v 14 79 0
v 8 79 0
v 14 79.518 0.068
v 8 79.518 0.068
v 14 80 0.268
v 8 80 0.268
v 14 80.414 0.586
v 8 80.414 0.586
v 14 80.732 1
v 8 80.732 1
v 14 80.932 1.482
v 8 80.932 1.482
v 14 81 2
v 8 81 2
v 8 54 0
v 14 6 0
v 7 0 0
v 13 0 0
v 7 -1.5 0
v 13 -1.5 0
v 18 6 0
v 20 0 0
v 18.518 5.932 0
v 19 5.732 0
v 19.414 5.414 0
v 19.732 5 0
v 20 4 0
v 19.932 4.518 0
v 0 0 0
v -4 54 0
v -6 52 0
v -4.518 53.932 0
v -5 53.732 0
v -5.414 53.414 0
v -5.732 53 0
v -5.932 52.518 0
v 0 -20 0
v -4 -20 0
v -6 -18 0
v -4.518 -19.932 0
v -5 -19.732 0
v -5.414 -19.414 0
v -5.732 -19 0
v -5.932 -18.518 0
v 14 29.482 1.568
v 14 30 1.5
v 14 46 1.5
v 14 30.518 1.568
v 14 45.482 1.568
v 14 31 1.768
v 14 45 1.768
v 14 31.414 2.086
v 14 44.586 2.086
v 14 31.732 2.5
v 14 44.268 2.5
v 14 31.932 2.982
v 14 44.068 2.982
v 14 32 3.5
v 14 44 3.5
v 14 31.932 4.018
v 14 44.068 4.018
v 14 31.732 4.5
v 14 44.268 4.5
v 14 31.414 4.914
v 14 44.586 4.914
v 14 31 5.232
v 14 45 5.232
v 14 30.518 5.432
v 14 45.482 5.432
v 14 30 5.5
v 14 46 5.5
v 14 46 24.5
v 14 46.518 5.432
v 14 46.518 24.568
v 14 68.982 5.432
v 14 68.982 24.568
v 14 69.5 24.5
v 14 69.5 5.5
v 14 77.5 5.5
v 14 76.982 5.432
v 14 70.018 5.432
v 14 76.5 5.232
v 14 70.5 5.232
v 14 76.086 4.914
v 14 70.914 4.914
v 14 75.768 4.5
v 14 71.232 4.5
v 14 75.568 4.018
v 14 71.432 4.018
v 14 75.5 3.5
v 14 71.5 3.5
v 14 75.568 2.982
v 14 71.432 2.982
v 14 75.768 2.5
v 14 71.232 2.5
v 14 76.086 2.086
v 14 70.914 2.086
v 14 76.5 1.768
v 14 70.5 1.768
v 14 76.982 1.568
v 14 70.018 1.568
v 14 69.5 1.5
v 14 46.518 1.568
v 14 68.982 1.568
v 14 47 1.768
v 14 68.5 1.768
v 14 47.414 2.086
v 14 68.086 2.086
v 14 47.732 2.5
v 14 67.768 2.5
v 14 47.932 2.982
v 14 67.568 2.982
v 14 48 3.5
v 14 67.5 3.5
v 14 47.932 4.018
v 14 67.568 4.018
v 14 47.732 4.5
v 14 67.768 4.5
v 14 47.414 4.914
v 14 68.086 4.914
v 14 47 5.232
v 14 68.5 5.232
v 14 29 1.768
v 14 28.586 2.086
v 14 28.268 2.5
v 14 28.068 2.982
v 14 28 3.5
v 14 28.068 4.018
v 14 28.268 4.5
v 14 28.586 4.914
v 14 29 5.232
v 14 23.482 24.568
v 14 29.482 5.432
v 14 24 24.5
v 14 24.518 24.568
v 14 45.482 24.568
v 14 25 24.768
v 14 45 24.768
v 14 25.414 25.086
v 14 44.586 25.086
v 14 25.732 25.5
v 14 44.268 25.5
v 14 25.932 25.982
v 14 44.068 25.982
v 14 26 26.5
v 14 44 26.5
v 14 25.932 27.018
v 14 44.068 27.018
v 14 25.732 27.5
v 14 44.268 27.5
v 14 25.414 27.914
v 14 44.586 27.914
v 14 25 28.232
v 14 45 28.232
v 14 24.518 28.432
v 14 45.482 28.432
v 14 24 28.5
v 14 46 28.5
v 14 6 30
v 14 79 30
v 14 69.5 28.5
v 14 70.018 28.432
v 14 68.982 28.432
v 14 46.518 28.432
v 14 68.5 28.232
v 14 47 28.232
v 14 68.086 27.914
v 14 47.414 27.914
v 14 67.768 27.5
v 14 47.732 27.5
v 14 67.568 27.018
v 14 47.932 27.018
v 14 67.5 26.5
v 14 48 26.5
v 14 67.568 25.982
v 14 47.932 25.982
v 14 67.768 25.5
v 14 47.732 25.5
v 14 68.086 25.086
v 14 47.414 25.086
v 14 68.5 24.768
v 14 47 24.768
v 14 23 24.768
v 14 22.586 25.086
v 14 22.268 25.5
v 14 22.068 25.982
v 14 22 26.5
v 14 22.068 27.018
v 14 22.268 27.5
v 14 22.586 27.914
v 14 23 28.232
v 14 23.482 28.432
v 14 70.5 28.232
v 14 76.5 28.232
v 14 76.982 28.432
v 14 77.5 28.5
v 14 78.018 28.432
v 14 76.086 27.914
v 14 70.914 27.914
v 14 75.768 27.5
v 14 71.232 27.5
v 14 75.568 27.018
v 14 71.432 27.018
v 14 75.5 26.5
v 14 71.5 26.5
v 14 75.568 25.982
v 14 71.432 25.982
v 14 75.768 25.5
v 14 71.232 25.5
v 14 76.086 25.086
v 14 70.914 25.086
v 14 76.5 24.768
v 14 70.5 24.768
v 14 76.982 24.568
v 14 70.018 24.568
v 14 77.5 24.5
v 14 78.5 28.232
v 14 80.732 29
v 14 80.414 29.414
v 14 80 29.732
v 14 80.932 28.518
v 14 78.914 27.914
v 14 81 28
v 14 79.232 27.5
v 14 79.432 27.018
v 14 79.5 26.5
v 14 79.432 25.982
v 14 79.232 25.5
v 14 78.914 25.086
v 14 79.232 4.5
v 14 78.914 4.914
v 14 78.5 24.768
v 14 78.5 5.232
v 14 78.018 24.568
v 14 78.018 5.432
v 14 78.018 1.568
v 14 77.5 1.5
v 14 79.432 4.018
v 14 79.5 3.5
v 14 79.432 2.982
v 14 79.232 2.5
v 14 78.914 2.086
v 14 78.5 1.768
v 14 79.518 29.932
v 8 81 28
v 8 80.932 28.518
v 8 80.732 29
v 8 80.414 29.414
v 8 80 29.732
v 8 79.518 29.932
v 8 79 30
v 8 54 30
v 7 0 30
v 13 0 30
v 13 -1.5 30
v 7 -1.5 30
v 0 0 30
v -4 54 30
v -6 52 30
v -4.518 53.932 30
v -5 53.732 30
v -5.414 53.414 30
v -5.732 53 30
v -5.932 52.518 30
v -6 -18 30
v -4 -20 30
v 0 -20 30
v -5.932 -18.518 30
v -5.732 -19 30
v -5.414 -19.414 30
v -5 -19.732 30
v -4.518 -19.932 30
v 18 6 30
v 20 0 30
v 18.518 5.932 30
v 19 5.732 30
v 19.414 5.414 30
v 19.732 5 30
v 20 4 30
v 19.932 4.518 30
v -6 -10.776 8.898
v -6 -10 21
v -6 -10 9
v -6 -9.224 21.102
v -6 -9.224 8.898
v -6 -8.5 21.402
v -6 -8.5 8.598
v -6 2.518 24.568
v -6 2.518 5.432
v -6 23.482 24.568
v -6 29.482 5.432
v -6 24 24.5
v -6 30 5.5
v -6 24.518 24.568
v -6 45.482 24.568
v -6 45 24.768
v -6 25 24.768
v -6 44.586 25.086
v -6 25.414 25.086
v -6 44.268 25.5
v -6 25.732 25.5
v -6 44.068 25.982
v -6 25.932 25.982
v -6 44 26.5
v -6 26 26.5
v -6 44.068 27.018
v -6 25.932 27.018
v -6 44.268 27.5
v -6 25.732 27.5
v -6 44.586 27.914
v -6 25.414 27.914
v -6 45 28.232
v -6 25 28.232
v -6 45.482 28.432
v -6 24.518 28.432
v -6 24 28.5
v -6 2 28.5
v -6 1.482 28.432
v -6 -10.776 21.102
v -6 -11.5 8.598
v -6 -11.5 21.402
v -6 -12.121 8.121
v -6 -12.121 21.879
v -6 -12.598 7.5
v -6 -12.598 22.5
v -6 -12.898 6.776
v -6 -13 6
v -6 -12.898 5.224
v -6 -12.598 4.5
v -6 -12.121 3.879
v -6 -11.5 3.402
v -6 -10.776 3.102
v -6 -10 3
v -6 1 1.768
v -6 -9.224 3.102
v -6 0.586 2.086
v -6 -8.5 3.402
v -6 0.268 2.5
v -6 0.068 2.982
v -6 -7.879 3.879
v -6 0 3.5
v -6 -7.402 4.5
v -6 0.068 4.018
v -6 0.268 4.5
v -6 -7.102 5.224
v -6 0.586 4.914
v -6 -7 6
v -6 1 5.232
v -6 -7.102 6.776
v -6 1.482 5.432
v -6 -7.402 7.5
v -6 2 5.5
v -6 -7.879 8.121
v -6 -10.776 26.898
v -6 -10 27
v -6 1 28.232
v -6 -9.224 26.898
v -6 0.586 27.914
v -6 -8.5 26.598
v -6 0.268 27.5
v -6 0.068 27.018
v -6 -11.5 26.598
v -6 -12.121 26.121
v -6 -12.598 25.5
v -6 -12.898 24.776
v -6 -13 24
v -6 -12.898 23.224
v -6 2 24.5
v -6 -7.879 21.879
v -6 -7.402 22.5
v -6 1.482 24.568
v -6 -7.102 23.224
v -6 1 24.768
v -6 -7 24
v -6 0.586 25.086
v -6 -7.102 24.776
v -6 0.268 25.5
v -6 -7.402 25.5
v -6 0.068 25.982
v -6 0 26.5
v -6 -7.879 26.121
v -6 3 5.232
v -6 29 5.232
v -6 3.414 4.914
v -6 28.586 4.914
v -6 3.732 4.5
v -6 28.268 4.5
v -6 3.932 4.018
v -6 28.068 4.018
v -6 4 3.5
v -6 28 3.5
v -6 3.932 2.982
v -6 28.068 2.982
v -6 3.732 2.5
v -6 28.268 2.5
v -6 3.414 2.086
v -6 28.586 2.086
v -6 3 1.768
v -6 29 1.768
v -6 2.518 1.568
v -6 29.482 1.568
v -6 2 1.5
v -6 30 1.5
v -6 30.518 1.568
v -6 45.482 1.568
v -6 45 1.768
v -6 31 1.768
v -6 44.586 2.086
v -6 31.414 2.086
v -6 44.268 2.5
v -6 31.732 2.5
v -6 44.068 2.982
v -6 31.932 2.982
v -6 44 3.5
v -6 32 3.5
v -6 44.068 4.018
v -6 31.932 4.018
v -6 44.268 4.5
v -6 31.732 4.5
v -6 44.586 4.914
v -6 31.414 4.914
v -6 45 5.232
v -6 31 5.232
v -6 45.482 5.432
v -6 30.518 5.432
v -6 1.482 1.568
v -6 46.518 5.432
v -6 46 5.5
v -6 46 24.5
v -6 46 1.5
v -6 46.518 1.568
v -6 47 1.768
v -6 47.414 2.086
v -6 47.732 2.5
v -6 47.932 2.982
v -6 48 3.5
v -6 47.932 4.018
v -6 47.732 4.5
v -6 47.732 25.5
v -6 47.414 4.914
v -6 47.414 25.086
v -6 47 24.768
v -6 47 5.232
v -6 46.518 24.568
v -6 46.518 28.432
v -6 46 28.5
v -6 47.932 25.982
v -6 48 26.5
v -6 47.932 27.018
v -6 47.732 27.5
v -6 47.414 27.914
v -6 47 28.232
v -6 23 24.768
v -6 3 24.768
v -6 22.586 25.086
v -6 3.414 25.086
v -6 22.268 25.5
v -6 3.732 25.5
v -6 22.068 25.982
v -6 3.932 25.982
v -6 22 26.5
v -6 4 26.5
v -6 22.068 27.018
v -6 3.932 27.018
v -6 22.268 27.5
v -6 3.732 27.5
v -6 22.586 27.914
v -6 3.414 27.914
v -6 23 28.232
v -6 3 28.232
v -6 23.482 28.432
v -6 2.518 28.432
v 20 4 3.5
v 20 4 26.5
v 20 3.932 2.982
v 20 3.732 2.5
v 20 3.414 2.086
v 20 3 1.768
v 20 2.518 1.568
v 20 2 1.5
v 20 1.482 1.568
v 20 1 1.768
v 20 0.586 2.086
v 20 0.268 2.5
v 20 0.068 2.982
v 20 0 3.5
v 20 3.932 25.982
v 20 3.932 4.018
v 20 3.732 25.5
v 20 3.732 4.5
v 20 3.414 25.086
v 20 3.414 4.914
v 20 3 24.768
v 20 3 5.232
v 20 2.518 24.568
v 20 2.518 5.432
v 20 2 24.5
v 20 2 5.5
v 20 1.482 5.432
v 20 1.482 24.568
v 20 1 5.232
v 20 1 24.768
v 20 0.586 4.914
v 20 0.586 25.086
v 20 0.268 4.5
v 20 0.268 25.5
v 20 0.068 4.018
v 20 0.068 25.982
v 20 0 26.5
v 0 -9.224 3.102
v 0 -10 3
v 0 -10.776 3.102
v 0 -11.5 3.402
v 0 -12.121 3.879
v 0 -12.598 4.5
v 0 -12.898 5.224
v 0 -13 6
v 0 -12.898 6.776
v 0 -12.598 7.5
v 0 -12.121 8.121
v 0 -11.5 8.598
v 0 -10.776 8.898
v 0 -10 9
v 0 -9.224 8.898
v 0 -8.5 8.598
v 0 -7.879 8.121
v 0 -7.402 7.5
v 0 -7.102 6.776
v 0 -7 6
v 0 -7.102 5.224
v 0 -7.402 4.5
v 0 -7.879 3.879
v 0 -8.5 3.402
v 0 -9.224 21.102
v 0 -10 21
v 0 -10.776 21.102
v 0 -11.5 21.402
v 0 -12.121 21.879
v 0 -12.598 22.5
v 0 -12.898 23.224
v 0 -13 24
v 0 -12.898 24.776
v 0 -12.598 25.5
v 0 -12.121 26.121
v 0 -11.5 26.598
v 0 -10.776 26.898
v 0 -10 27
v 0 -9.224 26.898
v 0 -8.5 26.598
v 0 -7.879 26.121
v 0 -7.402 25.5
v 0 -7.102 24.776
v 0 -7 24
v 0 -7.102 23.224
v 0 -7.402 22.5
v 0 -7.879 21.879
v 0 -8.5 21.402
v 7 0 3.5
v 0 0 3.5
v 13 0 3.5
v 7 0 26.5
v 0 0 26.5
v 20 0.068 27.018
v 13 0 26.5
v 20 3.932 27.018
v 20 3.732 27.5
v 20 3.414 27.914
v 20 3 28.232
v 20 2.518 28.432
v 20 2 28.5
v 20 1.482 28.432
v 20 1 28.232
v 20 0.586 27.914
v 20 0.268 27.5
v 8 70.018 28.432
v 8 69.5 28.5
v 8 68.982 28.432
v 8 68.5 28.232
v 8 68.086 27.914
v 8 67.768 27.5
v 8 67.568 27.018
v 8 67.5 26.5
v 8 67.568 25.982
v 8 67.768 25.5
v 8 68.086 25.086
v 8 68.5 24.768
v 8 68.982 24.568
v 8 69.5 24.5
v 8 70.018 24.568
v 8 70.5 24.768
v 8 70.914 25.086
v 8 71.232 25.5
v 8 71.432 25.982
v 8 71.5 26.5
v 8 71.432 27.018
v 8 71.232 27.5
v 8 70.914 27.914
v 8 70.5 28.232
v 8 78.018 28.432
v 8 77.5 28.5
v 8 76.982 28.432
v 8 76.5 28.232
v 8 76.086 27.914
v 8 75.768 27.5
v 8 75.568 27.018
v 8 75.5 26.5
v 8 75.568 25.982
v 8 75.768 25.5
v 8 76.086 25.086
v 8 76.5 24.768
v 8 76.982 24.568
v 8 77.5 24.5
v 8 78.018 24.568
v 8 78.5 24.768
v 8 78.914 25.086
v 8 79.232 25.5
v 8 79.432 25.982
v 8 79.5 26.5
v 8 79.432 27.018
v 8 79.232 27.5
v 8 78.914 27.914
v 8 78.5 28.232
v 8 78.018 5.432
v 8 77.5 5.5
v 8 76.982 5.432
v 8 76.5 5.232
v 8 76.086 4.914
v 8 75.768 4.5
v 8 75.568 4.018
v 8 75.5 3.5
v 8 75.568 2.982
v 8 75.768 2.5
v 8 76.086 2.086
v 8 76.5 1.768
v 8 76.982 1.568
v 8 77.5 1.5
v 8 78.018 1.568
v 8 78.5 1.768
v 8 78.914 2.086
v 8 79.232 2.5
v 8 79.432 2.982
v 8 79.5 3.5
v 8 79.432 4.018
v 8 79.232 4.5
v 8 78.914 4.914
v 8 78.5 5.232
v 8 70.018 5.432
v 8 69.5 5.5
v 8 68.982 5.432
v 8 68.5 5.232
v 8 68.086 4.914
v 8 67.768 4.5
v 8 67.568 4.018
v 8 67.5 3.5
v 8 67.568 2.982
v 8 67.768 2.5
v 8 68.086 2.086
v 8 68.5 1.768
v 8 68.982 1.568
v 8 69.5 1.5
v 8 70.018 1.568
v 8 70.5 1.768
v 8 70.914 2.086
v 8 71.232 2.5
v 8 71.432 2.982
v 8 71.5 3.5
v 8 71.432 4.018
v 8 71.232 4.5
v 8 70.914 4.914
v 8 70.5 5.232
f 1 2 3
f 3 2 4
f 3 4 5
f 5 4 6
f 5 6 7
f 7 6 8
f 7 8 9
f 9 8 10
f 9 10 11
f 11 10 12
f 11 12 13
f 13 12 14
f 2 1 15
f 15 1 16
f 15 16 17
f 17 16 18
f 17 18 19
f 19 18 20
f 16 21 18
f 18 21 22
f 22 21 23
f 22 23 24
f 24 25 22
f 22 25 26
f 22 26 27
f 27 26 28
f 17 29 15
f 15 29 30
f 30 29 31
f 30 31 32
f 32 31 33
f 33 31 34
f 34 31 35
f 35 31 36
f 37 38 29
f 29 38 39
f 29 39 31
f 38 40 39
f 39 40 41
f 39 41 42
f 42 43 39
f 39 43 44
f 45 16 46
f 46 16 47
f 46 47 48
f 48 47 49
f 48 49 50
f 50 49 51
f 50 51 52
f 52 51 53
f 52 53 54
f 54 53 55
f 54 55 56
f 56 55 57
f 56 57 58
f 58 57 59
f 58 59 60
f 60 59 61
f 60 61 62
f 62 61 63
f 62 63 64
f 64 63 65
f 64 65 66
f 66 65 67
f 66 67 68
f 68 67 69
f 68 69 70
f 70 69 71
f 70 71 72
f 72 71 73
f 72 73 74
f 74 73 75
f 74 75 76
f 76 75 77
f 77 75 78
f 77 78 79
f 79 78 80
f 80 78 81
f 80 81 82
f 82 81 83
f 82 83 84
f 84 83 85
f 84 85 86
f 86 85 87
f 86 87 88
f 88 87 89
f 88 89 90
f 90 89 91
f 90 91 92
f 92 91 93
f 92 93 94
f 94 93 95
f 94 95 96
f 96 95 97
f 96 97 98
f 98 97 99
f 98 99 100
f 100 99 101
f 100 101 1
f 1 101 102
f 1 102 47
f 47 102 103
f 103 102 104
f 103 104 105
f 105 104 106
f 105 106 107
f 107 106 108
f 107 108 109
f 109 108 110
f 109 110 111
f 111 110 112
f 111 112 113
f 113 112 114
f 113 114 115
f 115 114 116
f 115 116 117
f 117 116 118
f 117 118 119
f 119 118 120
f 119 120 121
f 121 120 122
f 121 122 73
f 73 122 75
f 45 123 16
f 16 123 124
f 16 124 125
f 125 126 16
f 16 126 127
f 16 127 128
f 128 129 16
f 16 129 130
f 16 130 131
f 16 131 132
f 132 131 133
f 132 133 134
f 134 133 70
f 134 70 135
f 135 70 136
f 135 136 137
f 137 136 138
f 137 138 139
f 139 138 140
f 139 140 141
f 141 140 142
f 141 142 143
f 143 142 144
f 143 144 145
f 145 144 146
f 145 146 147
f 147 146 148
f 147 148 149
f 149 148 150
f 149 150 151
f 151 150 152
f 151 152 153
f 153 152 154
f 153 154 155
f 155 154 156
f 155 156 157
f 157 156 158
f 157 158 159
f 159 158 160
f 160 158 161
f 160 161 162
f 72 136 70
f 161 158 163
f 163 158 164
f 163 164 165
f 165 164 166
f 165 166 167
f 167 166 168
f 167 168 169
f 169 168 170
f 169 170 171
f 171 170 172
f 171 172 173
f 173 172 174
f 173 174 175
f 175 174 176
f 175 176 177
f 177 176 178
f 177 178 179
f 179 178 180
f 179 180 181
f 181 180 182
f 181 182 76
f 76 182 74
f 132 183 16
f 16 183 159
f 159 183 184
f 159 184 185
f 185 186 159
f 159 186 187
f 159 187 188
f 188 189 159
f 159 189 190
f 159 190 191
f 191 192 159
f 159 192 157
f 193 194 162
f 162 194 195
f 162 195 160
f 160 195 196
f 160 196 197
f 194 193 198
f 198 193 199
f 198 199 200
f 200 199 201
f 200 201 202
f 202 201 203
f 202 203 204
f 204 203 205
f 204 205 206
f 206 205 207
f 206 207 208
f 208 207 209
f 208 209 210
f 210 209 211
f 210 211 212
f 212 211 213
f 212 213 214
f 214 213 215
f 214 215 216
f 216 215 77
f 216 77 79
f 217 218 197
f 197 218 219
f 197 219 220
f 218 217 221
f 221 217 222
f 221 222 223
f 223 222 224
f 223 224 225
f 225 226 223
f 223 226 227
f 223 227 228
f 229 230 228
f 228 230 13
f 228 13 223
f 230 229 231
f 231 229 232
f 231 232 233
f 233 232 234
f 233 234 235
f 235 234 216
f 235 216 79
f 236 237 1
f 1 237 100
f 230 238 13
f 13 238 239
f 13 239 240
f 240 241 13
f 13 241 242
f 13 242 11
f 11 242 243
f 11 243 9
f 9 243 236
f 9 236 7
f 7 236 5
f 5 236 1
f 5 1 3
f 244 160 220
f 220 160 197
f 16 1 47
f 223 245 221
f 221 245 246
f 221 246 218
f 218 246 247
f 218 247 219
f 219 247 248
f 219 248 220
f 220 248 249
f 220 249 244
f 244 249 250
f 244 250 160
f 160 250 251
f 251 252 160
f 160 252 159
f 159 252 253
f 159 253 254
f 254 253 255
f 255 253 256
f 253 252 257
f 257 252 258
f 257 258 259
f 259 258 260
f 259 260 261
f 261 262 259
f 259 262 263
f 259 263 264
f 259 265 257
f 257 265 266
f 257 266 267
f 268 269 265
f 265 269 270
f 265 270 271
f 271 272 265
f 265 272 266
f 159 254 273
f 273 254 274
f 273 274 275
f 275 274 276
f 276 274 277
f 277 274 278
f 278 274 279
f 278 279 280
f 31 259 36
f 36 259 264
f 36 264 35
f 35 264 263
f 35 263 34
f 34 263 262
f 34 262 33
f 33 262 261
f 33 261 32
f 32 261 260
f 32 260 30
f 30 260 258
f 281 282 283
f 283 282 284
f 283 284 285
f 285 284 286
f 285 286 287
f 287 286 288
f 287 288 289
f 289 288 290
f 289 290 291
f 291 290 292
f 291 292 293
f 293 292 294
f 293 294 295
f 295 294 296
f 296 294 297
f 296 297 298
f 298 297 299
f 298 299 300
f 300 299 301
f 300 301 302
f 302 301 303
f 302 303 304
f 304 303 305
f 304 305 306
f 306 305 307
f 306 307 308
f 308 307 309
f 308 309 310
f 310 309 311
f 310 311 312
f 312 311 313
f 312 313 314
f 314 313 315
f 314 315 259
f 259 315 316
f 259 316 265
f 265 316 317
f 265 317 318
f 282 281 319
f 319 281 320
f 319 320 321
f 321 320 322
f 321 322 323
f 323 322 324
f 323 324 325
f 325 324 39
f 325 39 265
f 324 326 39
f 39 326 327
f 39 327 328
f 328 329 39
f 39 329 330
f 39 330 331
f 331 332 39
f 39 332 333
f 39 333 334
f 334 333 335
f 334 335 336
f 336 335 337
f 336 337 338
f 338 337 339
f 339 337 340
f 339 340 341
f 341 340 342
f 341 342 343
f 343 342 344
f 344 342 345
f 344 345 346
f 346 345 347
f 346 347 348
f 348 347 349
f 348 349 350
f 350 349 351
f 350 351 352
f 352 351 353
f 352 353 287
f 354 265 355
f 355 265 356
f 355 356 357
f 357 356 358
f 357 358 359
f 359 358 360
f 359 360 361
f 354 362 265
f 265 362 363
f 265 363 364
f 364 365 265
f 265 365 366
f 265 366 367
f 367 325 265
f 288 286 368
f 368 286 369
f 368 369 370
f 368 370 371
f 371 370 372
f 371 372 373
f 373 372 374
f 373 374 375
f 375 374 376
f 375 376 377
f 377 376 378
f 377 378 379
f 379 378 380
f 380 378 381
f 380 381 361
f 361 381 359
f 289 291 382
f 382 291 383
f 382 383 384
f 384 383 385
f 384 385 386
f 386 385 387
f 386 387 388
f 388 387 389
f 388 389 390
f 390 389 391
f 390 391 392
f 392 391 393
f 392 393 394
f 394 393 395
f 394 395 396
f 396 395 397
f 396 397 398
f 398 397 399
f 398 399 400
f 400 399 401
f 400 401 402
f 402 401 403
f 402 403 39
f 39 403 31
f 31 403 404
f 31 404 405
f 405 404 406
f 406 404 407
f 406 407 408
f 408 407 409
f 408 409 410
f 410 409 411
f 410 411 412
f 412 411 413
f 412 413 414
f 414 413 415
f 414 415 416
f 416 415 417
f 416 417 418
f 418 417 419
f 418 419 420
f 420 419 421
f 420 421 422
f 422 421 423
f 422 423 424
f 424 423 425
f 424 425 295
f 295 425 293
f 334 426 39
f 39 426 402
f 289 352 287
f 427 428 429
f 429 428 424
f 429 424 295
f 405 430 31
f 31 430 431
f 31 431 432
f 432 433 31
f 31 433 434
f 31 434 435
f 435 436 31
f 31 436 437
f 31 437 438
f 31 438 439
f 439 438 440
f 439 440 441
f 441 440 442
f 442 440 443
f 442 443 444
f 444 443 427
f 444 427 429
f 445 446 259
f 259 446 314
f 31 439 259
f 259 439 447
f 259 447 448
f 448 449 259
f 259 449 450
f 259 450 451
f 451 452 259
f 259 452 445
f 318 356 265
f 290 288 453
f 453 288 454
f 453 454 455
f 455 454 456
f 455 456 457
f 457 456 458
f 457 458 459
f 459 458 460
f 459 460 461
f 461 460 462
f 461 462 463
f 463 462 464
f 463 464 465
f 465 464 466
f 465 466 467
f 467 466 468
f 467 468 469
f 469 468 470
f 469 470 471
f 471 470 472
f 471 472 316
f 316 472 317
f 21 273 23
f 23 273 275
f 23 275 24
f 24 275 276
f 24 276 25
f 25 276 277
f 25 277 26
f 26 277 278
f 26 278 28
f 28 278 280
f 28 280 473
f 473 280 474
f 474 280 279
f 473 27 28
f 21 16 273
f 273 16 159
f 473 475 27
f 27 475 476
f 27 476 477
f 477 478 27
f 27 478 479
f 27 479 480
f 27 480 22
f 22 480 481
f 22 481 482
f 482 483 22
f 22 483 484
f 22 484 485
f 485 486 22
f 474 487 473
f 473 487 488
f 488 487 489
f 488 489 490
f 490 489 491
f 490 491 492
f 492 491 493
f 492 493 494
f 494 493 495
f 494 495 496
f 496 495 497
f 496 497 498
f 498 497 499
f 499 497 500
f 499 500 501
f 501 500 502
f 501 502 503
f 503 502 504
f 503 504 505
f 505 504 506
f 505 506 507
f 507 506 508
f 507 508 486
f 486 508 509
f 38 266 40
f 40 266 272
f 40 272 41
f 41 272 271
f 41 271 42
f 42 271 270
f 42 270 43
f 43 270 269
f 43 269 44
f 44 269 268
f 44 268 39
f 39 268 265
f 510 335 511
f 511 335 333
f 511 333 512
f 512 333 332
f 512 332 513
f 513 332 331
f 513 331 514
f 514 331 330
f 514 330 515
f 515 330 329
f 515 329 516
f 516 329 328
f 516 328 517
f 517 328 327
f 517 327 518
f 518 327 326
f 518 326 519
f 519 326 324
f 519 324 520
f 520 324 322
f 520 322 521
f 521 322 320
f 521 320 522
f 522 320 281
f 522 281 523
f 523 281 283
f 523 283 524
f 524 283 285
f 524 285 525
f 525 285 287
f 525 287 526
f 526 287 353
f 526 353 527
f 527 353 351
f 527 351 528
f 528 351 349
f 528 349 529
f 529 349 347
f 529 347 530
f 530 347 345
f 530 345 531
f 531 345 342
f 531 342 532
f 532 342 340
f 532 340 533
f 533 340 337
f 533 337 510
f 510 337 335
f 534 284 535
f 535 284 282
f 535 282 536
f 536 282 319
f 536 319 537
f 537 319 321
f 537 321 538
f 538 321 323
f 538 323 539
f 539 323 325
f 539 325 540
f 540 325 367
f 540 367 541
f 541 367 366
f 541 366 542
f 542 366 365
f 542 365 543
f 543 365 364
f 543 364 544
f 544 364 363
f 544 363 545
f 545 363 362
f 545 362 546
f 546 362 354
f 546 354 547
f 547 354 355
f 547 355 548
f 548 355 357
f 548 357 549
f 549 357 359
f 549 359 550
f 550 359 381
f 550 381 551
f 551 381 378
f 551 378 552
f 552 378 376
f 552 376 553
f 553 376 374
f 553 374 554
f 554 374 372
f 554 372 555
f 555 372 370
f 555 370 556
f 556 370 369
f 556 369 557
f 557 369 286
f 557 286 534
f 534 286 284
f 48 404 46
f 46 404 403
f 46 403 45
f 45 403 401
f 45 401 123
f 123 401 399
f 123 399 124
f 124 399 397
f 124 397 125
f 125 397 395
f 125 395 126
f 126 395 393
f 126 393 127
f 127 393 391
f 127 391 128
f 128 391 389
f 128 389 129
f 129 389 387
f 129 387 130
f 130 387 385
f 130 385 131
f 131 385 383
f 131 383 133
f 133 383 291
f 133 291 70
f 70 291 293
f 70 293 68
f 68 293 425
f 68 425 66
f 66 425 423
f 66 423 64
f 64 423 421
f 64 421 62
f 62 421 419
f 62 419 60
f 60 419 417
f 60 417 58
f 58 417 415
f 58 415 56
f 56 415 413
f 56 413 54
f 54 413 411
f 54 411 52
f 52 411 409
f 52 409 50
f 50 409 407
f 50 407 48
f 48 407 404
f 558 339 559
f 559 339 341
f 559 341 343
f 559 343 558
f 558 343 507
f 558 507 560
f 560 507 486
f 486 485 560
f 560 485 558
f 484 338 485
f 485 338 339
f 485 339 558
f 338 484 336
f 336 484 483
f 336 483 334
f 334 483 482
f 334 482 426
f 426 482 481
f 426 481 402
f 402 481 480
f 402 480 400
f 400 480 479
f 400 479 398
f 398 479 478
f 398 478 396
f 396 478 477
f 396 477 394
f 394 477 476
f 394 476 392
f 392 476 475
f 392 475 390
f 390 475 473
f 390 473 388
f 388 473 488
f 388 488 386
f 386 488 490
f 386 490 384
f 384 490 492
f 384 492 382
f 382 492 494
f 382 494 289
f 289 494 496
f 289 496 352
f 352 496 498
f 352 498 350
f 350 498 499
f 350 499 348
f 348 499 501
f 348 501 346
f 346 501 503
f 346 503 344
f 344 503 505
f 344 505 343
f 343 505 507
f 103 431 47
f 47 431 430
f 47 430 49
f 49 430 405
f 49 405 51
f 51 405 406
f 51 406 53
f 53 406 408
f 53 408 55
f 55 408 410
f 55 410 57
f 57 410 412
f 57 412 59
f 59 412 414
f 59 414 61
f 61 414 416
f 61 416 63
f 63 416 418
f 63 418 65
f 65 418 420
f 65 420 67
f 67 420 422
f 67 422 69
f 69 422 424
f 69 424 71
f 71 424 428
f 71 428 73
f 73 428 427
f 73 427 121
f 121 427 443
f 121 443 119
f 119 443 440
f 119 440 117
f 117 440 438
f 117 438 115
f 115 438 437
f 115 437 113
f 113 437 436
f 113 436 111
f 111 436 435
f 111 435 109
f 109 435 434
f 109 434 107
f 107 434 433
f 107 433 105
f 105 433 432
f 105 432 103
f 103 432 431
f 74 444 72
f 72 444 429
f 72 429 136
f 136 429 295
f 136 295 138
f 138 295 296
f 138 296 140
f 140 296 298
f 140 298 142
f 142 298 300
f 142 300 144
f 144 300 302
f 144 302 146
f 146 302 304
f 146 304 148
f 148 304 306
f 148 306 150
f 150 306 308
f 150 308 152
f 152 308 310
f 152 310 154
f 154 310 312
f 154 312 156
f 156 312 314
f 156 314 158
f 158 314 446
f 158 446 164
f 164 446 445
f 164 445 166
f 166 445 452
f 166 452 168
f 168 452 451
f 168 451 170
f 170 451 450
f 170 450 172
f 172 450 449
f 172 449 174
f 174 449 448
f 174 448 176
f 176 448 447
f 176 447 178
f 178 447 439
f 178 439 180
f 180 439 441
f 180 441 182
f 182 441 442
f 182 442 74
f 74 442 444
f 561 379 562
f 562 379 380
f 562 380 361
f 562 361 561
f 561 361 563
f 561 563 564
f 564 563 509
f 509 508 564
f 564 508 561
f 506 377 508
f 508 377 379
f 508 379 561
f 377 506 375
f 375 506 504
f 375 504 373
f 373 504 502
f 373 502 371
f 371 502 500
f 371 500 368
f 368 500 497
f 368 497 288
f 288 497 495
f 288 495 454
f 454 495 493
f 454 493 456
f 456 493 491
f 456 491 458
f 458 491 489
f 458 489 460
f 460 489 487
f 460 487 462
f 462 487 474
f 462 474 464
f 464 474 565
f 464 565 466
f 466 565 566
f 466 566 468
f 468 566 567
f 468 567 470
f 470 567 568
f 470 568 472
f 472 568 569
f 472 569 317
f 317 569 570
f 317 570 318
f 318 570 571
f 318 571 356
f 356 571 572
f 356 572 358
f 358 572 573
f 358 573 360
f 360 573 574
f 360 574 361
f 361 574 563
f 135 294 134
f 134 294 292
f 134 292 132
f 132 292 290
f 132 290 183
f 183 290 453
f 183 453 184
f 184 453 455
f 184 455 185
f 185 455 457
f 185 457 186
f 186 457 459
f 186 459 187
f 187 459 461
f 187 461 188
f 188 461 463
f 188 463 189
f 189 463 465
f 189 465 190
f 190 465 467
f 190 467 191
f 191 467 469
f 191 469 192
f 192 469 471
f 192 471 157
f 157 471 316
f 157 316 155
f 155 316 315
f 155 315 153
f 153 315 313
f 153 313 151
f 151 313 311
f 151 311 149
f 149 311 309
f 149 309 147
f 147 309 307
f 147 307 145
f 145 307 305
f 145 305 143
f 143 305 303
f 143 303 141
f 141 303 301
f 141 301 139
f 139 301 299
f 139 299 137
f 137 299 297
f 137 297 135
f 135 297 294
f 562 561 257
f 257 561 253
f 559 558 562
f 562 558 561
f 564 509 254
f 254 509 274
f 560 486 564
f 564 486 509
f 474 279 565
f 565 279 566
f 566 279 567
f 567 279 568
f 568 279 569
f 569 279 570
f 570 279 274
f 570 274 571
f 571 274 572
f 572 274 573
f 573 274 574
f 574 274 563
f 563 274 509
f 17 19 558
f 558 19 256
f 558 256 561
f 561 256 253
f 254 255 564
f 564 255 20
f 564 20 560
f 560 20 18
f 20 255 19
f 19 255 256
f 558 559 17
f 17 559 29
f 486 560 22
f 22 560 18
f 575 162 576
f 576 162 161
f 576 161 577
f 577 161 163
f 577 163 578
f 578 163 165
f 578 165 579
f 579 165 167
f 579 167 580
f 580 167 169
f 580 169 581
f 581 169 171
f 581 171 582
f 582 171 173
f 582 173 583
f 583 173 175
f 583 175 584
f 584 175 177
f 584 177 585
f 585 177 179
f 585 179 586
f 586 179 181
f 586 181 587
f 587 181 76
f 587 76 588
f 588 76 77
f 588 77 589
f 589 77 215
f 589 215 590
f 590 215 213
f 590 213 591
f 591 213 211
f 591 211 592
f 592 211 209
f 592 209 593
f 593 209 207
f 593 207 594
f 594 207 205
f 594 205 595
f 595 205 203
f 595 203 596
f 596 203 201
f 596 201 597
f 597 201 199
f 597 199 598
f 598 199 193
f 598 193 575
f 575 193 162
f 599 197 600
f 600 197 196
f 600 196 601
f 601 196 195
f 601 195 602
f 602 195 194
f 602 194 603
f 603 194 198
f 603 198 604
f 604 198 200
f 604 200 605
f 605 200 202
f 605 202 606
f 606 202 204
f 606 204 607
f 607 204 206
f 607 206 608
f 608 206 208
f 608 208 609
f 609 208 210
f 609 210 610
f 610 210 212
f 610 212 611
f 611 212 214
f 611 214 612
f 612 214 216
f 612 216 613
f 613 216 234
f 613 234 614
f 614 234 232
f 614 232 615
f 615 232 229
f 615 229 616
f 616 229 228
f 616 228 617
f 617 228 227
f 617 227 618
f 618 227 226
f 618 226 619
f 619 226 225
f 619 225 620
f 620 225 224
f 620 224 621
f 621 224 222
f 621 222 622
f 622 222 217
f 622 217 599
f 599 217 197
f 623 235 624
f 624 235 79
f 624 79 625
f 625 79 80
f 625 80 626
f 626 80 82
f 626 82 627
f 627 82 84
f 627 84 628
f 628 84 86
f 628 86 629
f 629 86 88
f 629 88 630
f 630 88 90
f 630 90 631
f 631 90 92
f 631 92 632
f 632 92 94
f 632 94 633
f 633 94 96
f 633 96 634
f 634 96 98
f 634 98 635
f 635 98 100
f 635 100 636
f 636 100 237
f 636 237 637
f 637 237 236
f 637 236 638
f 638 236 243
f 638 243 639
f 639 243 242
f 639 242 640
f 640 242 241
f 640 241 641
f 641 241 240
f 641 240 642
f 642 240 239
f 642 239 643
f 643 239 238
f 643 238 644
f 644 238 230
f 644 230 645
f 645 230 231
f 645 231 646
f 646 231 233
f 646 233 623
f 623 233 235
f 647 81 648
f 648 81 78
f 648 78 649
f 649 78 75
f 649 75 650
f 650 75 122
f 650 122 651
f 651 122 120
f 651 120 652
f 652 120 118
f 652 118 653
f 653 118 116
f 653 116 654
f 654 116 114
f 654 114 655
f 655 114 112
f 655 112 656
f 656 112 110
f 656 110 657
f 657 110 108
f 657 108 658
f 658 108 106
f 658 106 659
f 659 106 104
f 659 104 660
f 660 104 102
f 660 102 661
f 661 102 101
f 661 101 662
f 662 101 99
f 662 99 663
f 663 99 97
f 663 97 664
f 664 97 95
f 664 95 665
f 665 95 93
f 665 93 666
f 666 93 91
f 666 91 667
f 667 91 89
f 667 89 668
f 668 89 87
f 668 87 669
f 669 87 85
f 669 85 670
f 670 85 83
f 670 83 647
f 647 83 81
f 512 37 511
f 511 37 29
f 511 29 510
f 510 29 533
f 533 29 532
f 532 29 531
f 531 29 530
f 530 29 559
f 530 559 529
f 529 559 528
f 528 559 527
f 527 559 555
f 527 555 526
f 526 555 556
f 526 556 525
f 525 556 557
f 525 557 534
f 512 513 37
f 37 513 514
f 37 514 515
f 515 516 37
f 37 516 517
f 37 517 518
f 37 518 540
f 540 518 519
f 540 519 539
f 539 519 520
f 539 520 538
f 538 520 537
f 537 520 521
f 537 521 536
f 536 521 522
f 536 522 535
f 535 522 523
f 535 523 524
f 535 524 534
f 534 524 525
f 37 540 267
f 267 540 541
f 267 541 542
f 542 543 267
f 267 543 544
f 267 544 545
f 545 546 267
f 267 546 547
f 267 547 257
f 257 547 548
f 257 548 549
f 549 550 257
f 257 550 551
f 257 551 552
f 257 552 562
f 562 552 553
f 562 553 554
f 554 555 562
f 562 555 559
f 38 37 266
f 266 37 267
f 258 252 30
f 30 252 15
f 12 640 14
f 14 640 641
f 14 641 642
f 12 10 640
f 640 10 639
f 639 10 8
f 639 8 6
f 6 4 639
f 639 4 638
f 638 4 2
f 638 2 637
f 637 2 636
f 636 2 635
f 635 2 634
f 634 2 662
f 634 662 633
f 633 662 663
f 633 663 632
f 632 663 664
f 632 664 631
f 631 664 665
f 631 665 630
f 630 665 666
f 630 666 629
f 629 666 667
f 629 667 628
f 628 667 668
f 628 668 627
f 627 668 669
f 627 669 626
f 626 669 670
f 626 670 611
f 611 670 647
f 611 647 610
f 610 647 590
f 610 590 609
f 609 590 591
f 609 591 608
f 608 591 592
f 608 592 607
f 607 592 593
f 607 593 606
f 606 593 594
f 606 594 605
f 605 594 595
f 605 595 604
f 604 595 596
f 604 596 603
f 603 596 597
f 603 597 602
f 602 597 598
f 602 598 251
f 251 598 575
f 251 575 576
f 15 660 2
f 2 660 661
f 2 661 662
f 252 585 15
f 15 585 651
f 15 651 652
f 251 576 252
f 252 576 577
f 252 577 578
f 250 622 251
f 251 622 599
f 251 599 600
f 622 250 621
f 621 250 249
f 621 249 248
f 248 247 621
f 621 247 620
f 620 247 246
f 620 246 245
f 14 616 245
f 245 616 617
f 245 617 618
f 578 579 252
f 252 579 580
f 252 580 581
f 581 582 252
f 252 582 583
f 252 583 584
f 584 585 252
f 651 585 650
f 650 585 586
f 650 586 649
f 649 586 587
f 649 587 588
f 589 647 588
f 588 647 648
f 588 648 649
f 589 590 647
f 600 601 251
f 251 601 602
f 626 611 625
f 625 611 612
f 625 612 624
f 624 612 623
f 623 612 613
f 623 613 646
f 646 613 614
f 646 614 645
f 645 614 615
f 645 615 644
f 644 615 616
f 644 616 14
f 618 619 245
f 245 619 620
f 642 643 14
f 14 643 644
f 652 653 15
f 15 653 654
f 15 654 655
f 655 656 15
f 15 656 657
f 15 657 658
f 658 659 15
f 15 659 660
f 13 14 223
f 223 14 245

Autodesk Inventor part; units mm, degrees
ref_plane "YZ Plane" through (0, 0, 0) normal (1, 0, 0) x (0, 1, 0)
ref_plane "XZ Plane" through (0, 0, 0) normal (0, 1, 0) x (-1, 0, 0)
ref_plane "XY Plane" through (0, 0, 0) normal (0, 0, 1) x (1, 0, 0)
sketch "Sketch1" plane through (0, 0, 0) normal (0, 0, 1) x (1, 0, 0)
  line L0 (0, 0) -> (20, 0)
  line L1 (0, 0) -> (0, -20)
  line L2 (14, 6) -> (20, 6)
  line L3 (0, -20) -> (-6, -20)
  line L4 (20, 6) -> (20, 0)
  line L5 (-6, -20) -> (-6, 54)
  line L6 (14, 6) -> (14, 81)
  line L7 (8, 54) -> (8, 81)
  line L8 (8, 81) -> (14, 81)
  line L9 (8, 54) -> (-6, 54)
  dimension "d1" = 20
  dimension "d3" = 20
  dimension "d7" = 20
  dimension "d8" = 14
  dimension "d9" = 27
  dimension "d46" = 54
extrude "Extrusion1" add sketch "Sketch1" along normal blind 30
sketch "Sketch2" plane through (14, 6, 0) normal (1, 0, 0) x (0, 0, -1)
  line L0 (0, 75) -> (-30, 75) projected
  line L1 (-15, 75) -> (-15, 48)
  line L2 (0, 48) -> (-30, 48) projected
  line L3 (-30, 0) -> (-30, 75) projected
  line L4 (0, 0) -> (0, 75) projected
  line L5 (-30, 67.5) -> (0, 67.5)
  point P0 (0, -6)
  point P1 (-26.5, 71.5)
  point P2 (-3.5, 71.5)
  point P3 (-26.5, 63.5)
  point P4 (-3.5, 63.5)
  dimension "d12" = 3.5
  dimension "d13" = 3.5
hole "Hole1" at (14, 77.5, 26.5) at (14, 77.5, 3.5) at (14, 69.5, 26.5) at (14, 69.5, 3.5) direction (-1, 0, 0) diameter 4 end through all
sketch "Sketch3" plane through (0, 0, 0) normal (0, -1, 0) x (1, 0, 0)
  line L0 (0, 30) -> (20, 30) projected
  line L1 (0, 0) -> (20, 0) projected
  line L2 (13, 30) -> (13, 0)
  line L3 (7, 30) -> (7, 0)
  line L4 (13, 0) -> (7, 0)
  line L5 (7, 30) -> (13, 30)
extrude "Extrusion2" add sketch "Sketch3" along normal blind 1.5
sketch "Sketch5" plane through (-6, -20, 0) normal (-1, 0, 0) x (0, 0, 1)
  line L0 (0, 74) -> (30, 74) projected
  line L1 (15, 74) -> (15, 0)
  line L2 (0, 0) -> (30, 0) projected
  line L3 (0, 74) -> (0, 0) projected
  line L4 (15, 44) -> (30, 44)
  line L5 (30, 26) -> (30, 101) projected
  point P0 (0, 20)
  point P1 (3.5, 66)
  point P2 (26.5, 66)
  point P3 (3.5, 22)
  point P4 (26.5, 22)
  point P5 (3.5, 50)
  point P6 (26.5, 44)
  dimension "d26" = 8
  dimension "d27" = 3.5
  dimension "d28" = 30
hole "Hole2" at (-6, 46, 3.5) at (-6, 46, 26.5) at (-6, 2, 3.5) at (-6, 2, 26.5) at (-6, 30, 3.5) at (-6, 24, 26.5) direction (1, 0, 0) diameter 4 end through all
sketch "Sketch6" plane through (-6, -20, 0) normal (-1, 0, 0) x (0, 0, 1)
  line L0 (0, 0) -> (30, 0) projected
  line L1 (0, 74) -> (0, 0) projected
  line L2 (15, 0) -> (15, 31.0805)
  point P0 (0, 20)
  point P1 (6, 10)
  point P2 (24, 10)
  dimension "d36" = 10
  dimension "d37" = 6
hole "Hole3" at (-6, -10, 6) at (-6, -10, 24) direction (1, 0, 0) diameter 6 end through all
fillet "Fillet2" radius 2 5 edges at (-6, -20, 15) (20, 6, 15) (-6, 54, 15) (11, 81, 30) (11, 81, 0)
properties part number "Esteira - estrutura"
